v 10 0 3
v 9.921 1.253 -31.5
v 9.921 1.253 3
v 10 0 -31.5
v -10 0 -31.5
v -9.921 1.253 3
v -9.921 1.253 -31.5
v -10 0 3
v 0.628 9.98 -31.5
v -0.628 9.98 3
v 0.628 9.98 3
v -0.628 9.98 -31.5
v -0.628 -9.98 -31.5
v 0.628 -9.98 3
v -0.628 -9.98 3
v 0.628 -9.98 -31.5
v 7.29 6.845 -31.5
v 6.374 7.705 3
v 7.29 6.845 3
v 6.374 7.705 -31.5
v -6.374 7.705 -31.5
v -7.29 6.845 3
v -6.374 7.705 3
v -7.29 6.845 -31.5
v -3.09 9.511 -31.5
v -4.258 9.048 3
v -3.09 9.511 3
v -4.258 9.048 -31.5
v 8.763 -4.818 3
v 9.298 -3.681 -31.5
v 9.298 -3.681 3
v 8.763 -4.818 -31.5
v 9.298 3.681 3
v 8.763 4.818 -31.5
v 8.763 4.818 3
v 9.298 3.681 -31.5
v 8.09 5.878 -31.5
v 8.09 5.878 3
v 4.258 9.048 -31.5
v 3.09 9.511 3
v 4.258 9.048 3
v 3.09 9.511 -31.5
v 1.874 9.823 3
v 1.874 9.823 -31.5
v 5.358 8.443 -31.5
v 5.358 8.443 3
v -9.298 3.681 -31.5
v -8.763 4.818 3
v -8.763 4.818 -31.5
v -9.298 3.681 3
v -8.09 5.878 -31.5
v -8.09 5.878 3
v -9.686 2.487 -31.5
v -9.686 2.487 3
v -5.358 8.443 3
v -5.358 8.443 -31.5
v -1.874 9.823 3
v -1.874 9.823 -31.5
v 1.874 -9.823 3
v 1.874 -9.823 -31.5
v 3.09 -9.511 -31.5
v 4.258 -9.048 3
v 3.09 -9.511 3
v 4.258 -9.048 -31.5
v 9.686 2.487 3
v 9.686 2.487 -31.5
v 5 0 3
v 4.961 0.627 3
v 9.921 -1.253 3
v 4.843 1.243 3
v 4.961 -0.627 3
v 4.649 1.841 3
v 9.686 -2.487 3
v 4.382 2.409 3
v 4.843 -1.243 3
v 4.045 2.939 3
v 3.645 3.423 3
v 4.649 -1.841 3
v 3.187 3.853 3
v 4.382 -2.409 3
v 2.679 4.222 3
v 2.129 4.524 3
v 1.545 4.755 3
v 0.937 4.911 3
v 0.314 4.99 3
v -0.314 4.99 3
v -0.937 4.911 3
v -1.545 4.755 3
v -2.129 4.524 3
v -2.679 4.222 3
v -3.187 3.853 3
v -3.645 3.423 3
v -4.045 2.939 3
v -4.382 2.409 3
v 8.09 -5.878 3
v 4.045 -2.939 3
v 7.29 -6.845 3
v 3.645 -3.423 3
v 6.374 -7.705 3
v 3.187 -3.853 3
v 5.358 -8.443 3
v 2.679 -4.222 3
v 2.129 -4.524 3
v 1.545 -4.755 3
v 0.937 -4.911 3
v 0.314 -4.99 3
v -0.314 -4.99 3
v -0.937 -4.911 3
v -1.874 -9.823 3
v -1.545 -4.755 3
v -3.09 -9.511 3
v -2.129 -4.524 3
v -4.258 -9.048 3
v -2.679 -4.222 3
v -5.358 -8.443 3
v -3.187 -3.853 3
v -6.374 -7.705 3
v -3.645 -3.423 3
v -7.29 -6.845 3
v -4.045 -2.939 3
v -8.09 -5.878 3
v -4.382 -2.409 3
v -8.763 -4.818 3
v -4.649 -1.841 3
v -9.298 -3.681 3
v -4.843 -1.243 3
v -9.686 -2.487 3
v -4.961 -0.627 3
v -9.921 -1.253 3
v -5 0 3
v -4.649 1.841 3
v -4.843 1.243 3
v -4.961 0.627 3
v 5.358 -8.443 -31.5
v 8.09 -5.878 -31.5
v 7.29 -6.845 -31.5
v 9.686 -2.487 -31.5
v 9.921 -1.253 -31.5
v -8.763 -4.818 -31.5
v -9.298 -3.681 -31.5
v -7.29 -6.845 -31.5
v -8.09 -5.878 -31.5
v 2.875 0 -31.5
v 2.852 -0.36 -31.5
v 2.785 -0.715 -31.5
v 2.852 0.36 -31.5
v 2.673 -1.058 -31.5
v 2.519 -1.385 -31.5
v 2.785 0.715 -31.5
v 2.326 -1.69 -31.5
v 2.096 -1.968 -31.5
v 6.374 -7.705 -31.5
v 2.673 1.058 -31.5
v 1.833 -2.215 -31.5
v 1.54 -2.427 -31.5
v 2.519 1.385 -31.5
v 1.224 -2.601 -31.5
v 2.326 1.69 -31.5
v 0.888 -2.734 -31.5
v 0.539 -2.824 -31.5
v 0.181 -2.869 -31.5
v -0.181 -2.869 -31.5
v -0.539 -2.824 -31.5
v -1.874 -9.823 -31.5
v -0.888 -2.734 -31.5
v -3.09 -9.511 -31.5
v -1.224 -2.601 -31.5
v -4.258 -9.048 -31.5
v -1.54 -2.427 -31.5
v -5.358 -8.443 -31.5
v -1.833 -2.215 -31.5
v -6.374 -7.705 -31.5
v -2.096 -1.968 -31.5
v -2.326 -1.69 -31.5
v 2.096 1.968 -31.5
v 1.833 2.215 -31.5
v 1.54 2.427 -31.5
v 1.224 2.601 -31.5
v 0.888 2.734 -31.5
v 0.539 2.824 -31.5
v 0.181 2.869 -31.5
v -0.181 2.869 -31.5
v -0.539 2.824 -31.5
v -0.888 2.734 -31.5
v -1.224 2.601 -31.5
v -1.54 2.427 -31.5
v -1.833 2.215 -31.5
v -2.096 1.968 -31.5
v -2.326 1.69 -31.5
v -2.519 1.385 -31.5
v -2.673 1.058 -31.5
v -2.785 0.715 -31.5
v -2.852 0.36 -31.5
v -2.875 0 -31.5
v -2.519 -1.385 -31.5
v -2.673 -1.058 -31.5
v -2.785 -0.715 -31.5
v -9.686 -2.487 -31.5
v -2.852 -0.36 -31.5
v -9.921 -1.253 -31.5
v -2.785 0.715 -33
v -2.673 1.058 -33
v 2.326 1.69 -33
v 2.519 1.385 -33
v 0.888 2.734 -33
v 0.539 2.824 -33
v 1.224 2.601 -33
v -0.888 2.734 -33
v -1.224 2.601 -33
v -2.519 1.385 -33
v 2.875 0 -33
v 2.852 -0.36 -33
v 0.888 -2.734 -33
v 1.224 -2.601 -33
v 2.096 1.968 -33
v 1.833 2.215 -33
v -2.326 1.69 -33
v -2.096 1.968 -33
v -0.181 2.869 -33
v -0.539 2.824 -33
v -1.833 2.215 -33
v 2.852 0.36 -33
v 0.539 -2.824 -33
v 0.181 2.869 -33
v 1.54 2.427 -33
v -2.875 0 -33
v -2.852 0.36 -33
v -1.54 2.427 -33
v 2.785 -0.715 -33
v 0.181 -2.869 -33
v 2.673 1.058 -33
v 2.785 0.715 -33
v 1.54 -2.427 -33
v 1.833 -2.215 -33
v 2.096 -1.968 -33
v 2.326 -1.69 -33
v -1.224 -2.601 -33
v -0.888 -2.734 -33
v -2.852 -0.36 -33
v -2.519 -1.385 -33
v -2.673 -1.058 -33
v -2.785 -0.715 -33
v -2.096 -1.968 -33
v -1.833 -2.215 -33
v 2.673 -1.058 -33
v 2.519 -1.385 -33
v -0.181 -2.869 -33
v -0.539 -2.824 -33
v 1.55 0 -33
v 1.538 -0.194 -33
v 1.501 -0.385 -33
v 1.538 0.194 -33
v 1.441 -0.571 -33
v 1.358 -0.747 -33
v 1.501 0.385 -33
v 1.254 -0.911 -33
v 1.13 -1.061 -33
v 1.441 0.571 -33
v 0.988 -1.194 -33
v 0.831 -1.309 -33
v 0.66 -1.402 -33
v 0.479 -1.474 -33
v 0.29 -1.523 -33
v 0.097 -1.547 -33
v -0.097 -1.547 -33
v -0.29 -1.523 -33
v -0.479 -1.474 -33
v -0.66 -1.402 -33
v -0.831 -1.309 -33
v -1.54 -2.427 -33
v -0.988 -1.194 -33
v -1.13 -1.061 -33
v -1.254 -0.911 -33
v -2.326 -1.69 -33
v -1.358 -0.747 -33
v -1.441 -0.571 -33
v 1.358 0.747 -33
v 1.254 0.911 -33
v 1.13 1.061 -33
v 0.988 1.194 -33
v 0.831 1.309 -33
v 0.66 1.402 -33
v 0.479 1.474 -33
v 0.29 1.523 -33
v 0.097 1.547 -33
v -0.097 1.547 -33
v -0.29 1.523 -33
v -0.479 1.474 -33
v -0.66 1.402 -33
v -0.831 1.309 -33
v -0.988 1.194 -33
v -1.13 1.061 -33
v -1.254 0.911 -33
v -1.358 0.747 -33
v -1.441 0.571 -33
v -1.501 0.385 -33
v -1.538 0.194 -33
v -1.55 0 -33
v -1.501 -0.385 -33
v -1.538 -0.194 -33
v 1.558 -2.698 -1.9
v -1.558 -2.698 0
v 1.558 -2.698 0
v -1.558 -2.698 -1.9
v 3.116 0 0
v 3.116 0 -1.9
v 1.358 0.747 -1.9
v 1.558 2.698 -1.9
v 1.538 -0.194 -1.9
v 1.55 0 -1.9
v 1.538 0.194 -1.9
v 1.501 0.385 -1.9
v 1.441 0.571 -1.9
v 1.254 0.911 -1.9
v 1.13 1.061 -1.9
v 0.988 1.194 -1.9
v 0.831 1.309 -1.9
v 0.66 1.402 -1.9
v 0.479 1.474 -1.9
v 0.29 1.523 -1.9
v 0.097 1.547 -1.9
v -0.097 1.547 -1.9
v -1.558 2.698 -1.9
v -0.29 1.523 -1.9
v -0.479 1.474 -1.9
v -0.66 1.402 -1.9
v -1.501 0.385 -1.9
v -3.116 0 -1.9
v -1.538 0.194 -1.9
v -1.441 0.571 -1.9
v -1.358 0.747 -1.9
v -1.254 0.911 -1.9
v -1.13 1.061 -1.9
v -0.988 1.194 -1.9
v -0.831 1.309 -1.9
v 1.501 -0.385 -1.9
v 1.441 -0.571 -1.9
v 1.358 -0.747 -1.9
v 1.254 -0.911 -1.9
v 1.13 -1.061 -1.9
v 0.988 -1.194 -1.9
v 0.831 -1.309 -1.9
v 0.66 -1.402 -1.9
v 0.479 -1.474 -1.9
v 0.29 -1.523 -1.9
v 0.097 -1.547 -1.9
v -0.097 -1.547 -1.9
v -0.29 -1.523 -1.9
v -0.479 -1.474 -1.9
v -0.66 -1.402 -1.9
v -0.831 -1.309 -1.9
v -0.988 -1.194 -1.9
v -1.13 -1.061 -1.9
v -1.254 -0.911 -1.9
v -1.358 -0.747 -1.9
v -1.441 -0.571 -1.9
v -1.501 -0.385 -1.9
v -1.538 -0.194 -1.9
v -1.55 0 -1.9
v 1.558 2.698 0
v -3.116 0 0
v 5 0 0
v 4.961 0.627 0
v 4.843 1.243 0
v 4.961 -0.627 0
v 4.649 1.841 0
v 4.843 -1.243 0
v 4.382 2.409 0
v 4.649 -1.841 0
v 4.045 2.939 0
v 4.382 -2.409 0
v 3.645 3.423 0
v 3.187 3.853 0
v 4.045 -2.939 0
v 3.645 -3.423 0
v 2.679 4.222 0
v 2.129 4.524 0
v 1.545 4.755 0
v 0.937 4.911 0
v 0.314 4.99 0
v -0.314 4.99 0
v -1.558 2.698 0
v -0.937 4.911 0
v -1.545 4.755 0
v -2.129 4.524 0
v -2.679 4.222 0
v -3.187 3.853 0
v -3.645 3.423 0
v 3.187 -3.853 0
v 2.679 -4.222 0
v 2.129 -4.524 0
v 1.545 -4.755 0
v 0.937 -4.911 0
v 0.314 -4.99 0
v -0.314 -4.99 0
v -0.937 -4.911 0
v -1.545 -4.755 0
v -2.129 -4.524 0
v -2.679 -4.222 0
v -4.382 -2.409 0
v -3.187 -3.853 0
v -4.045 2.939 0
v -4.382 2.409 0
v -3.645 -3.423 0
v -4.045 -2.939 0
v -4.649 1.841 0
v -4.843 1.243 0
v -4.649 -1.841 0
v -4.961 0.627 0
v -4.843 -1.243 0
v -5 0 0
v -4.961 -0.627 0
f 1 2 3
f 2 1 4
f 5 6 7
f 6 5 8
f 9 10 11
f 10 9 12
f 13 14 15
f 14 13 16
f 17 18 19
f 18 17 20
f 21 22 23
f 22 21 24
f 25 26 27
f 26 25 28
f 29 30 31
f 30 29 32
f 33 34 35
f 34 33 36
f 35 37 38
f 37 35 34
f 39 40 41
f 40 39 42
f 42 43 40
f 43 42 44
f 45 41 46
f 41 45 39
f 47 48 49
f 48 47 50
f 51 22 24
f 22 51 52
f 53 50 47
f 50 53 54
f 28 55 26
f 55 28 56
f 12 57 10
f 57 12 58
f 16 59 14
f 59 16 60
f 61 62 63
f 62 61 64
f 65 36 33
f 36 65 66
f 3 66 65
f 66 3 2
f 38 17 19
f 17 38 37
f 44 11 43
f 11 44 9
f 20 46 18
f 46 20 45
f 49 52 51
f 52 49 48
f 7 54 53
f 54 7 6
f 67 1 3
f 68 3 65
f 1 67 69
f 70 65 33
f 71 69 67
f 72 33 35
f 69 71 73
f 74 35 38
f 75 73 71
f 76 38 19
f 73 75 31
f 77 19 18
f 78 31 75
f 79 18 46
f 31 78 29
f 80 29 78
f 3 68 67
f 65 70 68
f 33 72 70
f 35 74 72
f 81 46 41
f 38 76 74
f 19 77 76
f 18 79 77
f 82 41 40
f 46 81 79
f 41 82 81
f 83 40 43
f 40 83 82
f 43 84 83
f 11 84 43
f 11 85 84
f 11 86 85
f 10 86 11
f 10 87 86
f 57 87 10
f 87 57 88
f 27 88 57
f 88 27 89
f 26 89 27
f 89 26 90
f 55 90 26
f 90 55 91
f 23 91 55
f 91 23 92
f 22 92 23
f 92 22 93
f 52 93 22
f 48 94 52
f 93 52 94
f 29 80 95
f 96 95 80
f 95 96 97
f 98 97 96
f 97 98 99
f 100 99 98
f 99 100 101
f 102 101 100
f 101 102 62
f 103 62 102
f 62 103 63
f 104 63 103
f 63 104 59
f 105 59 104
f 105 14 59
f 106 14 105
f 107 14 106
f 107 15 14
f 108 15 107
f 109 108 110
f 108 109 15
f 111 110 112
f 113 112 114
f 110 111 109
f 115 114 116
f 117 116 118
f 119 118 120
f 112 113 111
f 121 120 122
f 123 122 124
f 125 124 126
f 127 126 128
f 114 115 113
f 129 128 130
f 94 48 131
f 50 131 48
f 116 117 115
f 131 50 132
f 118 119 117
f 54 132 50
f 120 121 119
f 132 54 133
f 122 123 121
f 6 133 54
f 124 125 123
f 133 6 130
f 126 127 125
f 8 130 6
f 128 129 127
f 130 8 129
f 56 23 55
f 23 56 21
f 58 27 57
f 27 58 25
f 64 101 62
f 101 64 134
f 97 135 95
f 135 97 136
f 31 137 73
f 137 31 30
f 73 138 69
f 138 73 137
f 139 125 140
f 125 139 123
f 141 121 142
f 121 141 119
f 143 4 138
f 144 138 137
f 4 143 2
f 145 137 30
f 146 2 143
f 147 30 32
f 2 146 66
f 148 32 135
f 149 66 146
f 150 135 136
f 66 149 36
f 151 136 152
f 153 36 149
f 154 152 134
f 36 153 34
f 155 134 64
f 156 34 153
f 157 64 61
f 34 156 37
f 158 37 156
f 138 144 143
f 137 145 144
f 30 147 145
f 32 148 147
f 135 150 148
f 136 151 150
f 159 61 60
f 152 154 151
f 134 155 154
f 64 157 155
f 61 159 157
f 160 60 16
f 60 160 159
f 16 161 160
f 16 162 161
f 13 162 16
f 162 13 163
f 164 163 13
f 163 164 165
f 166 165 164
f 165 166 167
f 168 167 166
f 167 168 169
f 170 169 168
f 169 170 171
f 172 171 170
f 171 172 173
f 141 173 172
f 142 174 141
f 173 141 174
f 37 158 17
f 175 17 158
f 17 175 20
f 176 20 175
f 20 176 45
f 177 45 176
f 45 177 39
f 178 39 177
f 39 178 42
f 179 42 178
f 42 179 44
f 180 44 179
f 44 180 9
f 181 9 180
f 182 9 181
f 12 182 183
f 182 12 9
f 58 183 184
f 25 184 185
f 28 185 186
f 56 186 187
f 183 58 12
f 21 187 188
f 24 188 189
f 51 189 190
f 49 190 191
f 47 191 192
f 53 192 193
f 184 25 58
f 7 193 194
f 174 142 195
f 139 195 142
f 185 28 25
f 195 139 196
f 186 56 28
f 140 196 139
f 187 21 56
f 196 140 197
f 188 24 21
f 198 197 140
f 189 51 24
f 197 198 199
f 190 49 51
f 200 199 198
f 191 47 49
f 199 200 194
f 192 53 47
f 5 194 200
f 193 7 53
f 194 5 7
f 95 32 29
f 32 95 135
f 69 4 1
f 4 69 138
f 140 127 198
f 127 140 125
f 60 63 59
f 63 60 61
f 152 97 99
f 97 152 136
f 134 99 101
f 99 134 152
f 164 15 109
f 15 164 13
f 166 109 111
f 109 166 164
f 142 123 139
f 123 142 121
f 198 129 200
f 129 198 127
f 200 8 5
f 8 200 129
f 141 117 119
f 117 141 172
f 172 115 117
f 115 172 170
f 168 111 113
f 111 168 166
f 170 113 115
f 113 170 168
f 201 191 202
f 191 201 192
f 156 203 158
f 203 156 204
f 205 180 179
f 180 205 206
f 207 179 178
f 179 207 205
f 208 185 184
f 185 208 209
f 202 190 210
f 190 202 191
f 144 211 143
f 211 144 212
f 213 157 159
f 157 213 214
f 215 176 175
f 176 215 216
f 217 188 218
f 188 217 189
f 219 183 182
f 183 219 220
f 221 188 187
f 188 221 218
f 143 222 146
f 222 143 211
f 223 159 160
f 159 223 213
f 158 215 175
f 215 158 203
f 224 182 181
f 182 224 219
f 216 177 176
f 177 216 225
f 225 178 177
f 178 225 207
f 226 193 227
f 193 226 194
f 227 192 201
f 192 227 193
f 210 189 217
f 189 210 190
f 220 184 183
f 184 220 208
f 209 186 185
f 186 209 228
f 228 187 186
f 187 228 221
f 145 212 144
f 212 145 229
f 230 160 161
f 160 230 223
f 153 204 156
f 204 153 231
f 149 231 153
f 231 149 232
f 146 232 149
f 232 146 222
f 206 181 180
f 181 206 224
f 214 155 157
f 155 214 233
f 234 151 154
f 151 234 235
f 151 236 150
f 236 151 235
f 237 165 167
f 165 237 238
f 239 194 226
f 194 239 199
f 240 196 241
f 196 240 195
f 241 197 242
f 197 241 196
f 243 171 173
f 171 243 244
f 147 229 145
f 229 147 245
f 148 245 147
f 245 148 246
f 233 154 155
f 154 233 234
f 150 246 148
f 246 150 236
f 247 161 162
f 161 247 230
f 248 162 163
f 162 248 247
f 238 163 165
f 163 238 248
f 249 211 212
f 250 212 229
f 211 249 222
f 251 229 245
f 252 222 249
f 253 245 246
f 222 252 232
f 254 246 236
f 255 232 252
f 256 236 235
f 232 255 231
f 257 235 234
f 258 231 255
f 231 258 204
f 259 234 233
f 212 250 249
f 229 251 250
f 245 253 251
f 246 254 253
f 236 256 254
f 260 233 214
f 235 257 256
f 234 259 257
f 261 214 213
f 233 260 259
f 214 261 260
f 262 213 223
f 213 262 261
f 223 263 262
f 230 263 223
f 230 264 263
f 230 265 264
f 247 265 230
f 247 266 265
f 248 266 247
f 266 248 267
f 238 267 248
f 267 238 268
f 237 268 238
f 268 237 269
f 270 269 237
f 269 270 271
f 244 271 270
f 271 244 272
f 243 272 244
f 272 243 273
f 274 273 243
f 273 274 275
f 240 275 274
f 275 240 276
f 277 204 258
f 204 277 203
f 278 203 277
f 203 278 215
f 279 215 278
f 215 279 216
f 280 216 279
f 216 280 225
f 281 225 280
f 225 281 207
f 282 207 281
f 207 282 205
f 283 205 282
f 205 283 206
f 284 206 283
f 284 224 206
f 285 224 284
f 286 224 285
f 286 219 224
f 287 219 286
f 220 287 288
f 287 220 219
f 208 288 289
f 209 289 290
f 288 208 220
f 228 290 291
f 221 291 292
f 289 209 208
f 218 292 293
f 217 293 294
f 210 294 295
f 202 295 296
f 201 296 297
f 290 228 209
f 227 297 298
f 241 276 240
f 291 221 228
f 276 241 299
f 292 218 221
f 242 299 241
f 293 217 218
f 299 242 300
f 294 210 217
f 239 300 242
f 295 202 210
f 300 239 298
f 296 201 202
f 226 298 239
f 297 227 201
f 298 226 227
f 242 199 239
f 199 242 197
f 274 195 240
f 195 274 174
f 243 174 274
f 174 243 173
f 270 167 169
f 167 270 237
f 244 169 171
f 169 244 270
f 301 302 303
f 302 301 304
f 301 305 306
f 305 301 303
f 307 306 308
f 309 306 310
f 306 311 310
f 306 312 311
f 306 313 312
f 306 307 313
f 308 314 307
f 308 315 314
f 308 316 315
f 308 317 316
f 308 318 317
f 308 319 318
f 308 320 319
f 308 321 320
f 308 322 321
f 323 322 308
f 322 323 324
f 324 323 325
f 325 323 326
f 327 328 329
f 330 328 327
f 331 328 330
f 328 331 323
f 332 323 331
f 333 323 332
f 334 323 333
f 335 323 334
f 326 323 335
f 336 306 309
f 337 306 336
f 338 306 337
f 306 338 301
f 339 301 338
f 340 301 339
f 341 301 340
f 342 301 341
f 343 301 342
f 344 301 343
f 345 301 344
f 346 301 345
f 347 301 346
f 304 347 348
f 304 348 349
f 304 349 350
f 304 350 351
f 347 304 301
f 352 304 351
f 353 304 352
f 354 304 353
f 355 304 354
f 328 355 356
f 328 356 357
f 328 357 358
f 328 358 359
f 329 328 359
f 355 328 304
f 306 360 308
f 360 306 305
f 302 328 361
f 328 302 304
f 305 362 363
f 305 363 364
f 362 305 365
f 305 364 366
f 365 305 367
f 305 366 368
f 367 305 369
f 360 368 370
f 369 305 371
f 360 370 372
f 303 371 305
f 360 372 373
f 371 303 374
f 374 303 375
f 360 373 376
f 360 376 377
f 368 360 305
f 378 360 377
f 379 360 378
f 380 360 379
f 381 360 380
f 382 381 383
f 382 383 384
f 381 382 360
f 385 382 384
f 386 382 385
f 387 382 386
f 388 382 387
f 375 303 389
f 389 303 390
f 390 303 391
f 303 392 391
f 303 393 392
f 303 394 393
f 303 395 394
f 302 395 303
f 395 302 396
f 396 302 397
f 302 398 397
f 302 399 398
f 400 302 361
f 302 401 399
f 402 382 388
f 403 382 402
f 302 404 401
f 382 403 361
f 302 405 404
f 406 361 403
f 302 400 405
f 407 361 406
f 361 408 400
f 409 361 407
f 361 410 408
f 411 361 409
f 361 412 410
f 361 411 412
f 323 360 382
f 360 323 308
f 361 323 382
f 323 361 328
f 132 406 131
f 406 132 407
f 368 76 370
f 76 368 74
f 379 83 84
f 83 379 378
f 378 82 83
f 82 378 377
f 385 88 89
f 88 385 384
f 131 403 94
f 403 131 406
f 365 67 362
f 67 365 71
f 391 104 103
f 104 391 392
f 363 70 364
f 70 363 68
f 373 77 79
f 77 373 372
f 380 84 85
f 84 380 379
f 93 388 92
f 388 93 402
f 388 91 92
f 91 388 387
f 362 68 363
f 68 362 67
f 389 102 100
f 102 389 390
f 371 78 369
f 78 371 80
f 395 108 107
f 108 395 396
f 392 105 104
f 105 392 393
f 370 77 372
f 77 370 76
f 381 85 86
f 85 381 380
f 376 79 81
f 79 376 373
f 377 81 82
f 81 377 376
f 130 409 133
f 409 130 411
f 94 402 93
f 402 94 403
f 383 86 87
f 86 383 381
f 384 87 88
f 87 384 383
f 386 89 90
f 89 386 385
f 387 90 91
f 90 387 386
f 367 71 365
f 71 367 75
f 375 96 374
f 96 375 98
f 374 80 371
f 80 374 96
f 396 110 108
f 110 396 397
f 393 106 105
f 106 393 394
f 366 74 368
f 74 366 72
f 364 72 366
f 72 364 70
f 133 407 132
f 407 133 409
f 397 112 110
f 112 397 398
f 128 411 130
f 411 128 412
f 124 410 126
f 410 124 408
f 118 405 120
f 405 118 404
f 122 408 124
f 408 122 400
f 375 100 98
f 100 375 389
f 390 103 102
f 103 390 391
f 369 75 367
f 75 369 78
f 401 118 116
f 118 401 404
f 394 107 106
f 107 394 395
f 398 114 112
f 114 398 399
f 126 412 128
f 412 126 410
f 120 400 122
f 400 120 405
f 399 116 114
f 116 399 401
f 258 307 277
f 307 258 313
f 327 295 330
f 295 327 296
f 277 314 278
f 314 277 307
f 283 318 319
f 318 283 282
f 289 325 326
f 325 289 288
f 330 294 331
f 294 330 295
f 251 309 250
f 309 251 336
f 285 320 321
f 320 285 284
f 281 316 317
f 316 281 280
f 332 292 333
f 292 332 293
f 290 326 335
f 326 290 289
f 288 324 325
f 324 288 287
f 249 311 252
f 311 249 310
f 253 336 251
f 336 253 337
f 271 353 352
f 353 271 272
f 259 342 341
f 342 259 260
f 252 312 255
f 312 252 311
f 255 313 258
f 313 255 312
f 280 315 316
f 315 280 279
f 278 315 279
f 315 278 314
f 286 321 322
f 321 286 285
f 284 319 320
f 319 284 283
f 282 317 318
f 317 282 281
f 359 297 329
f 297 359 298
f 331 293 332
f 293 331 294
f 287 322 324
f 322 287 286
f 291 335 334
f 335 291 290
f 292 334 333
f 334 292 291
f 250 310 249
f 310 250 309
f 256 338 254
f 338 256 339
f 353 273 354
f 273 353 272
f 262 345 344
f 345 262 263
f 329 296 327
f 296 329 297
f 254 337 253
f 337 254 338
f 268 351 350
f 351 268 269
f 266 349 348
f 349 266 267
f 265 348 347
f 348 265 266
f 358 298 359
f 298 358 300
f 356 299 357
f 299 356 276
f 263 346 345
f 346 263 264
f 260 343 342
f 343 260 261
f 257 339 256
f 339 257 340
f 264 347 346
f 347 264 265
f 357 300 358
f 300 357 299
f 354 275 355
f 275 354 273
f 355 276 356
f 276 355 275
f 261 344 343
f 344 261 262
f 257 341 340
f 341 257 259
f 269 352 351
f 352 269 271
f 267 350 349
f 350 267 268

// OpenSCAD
$fn = 50;

difference() {
	union() {
		translate(v = [0, 0, -31.5]) {
			cylinder(h = 34.5, r = 10.0);
		}
		#translate(v = [0, 0, -33.0]) {
			cylinder(h = 33, r = 2.875);
		}
	}
	union() {
		translate(v = [0, 0, 0]) {
			rotate(a = [0, 0, 0]) {
				difference() {
					union() {
						translate(v = [0, 0, -1.9]) {
							linear_extrude(height = 1.9) {
								polygon(points = [[3.1158, 0.0], [1.5579000000000005, 2.698361953111554], [-1.5578999999999994, 2.6983619531115544], [-3.1158, 3.815754496783323e-16], [-1.5579000000000014, -2.6983619531115535], [1.557899999999998, -2.6983619531115552]]);
							}
						}
					}
					union();
				}
			}
		}
		#cylinder(h = 3, r = 5.0);
		#translate(v = [0, 0, -100.0]) {
			cylinder(h = 200, r = 1.55);
		}
	}
}
